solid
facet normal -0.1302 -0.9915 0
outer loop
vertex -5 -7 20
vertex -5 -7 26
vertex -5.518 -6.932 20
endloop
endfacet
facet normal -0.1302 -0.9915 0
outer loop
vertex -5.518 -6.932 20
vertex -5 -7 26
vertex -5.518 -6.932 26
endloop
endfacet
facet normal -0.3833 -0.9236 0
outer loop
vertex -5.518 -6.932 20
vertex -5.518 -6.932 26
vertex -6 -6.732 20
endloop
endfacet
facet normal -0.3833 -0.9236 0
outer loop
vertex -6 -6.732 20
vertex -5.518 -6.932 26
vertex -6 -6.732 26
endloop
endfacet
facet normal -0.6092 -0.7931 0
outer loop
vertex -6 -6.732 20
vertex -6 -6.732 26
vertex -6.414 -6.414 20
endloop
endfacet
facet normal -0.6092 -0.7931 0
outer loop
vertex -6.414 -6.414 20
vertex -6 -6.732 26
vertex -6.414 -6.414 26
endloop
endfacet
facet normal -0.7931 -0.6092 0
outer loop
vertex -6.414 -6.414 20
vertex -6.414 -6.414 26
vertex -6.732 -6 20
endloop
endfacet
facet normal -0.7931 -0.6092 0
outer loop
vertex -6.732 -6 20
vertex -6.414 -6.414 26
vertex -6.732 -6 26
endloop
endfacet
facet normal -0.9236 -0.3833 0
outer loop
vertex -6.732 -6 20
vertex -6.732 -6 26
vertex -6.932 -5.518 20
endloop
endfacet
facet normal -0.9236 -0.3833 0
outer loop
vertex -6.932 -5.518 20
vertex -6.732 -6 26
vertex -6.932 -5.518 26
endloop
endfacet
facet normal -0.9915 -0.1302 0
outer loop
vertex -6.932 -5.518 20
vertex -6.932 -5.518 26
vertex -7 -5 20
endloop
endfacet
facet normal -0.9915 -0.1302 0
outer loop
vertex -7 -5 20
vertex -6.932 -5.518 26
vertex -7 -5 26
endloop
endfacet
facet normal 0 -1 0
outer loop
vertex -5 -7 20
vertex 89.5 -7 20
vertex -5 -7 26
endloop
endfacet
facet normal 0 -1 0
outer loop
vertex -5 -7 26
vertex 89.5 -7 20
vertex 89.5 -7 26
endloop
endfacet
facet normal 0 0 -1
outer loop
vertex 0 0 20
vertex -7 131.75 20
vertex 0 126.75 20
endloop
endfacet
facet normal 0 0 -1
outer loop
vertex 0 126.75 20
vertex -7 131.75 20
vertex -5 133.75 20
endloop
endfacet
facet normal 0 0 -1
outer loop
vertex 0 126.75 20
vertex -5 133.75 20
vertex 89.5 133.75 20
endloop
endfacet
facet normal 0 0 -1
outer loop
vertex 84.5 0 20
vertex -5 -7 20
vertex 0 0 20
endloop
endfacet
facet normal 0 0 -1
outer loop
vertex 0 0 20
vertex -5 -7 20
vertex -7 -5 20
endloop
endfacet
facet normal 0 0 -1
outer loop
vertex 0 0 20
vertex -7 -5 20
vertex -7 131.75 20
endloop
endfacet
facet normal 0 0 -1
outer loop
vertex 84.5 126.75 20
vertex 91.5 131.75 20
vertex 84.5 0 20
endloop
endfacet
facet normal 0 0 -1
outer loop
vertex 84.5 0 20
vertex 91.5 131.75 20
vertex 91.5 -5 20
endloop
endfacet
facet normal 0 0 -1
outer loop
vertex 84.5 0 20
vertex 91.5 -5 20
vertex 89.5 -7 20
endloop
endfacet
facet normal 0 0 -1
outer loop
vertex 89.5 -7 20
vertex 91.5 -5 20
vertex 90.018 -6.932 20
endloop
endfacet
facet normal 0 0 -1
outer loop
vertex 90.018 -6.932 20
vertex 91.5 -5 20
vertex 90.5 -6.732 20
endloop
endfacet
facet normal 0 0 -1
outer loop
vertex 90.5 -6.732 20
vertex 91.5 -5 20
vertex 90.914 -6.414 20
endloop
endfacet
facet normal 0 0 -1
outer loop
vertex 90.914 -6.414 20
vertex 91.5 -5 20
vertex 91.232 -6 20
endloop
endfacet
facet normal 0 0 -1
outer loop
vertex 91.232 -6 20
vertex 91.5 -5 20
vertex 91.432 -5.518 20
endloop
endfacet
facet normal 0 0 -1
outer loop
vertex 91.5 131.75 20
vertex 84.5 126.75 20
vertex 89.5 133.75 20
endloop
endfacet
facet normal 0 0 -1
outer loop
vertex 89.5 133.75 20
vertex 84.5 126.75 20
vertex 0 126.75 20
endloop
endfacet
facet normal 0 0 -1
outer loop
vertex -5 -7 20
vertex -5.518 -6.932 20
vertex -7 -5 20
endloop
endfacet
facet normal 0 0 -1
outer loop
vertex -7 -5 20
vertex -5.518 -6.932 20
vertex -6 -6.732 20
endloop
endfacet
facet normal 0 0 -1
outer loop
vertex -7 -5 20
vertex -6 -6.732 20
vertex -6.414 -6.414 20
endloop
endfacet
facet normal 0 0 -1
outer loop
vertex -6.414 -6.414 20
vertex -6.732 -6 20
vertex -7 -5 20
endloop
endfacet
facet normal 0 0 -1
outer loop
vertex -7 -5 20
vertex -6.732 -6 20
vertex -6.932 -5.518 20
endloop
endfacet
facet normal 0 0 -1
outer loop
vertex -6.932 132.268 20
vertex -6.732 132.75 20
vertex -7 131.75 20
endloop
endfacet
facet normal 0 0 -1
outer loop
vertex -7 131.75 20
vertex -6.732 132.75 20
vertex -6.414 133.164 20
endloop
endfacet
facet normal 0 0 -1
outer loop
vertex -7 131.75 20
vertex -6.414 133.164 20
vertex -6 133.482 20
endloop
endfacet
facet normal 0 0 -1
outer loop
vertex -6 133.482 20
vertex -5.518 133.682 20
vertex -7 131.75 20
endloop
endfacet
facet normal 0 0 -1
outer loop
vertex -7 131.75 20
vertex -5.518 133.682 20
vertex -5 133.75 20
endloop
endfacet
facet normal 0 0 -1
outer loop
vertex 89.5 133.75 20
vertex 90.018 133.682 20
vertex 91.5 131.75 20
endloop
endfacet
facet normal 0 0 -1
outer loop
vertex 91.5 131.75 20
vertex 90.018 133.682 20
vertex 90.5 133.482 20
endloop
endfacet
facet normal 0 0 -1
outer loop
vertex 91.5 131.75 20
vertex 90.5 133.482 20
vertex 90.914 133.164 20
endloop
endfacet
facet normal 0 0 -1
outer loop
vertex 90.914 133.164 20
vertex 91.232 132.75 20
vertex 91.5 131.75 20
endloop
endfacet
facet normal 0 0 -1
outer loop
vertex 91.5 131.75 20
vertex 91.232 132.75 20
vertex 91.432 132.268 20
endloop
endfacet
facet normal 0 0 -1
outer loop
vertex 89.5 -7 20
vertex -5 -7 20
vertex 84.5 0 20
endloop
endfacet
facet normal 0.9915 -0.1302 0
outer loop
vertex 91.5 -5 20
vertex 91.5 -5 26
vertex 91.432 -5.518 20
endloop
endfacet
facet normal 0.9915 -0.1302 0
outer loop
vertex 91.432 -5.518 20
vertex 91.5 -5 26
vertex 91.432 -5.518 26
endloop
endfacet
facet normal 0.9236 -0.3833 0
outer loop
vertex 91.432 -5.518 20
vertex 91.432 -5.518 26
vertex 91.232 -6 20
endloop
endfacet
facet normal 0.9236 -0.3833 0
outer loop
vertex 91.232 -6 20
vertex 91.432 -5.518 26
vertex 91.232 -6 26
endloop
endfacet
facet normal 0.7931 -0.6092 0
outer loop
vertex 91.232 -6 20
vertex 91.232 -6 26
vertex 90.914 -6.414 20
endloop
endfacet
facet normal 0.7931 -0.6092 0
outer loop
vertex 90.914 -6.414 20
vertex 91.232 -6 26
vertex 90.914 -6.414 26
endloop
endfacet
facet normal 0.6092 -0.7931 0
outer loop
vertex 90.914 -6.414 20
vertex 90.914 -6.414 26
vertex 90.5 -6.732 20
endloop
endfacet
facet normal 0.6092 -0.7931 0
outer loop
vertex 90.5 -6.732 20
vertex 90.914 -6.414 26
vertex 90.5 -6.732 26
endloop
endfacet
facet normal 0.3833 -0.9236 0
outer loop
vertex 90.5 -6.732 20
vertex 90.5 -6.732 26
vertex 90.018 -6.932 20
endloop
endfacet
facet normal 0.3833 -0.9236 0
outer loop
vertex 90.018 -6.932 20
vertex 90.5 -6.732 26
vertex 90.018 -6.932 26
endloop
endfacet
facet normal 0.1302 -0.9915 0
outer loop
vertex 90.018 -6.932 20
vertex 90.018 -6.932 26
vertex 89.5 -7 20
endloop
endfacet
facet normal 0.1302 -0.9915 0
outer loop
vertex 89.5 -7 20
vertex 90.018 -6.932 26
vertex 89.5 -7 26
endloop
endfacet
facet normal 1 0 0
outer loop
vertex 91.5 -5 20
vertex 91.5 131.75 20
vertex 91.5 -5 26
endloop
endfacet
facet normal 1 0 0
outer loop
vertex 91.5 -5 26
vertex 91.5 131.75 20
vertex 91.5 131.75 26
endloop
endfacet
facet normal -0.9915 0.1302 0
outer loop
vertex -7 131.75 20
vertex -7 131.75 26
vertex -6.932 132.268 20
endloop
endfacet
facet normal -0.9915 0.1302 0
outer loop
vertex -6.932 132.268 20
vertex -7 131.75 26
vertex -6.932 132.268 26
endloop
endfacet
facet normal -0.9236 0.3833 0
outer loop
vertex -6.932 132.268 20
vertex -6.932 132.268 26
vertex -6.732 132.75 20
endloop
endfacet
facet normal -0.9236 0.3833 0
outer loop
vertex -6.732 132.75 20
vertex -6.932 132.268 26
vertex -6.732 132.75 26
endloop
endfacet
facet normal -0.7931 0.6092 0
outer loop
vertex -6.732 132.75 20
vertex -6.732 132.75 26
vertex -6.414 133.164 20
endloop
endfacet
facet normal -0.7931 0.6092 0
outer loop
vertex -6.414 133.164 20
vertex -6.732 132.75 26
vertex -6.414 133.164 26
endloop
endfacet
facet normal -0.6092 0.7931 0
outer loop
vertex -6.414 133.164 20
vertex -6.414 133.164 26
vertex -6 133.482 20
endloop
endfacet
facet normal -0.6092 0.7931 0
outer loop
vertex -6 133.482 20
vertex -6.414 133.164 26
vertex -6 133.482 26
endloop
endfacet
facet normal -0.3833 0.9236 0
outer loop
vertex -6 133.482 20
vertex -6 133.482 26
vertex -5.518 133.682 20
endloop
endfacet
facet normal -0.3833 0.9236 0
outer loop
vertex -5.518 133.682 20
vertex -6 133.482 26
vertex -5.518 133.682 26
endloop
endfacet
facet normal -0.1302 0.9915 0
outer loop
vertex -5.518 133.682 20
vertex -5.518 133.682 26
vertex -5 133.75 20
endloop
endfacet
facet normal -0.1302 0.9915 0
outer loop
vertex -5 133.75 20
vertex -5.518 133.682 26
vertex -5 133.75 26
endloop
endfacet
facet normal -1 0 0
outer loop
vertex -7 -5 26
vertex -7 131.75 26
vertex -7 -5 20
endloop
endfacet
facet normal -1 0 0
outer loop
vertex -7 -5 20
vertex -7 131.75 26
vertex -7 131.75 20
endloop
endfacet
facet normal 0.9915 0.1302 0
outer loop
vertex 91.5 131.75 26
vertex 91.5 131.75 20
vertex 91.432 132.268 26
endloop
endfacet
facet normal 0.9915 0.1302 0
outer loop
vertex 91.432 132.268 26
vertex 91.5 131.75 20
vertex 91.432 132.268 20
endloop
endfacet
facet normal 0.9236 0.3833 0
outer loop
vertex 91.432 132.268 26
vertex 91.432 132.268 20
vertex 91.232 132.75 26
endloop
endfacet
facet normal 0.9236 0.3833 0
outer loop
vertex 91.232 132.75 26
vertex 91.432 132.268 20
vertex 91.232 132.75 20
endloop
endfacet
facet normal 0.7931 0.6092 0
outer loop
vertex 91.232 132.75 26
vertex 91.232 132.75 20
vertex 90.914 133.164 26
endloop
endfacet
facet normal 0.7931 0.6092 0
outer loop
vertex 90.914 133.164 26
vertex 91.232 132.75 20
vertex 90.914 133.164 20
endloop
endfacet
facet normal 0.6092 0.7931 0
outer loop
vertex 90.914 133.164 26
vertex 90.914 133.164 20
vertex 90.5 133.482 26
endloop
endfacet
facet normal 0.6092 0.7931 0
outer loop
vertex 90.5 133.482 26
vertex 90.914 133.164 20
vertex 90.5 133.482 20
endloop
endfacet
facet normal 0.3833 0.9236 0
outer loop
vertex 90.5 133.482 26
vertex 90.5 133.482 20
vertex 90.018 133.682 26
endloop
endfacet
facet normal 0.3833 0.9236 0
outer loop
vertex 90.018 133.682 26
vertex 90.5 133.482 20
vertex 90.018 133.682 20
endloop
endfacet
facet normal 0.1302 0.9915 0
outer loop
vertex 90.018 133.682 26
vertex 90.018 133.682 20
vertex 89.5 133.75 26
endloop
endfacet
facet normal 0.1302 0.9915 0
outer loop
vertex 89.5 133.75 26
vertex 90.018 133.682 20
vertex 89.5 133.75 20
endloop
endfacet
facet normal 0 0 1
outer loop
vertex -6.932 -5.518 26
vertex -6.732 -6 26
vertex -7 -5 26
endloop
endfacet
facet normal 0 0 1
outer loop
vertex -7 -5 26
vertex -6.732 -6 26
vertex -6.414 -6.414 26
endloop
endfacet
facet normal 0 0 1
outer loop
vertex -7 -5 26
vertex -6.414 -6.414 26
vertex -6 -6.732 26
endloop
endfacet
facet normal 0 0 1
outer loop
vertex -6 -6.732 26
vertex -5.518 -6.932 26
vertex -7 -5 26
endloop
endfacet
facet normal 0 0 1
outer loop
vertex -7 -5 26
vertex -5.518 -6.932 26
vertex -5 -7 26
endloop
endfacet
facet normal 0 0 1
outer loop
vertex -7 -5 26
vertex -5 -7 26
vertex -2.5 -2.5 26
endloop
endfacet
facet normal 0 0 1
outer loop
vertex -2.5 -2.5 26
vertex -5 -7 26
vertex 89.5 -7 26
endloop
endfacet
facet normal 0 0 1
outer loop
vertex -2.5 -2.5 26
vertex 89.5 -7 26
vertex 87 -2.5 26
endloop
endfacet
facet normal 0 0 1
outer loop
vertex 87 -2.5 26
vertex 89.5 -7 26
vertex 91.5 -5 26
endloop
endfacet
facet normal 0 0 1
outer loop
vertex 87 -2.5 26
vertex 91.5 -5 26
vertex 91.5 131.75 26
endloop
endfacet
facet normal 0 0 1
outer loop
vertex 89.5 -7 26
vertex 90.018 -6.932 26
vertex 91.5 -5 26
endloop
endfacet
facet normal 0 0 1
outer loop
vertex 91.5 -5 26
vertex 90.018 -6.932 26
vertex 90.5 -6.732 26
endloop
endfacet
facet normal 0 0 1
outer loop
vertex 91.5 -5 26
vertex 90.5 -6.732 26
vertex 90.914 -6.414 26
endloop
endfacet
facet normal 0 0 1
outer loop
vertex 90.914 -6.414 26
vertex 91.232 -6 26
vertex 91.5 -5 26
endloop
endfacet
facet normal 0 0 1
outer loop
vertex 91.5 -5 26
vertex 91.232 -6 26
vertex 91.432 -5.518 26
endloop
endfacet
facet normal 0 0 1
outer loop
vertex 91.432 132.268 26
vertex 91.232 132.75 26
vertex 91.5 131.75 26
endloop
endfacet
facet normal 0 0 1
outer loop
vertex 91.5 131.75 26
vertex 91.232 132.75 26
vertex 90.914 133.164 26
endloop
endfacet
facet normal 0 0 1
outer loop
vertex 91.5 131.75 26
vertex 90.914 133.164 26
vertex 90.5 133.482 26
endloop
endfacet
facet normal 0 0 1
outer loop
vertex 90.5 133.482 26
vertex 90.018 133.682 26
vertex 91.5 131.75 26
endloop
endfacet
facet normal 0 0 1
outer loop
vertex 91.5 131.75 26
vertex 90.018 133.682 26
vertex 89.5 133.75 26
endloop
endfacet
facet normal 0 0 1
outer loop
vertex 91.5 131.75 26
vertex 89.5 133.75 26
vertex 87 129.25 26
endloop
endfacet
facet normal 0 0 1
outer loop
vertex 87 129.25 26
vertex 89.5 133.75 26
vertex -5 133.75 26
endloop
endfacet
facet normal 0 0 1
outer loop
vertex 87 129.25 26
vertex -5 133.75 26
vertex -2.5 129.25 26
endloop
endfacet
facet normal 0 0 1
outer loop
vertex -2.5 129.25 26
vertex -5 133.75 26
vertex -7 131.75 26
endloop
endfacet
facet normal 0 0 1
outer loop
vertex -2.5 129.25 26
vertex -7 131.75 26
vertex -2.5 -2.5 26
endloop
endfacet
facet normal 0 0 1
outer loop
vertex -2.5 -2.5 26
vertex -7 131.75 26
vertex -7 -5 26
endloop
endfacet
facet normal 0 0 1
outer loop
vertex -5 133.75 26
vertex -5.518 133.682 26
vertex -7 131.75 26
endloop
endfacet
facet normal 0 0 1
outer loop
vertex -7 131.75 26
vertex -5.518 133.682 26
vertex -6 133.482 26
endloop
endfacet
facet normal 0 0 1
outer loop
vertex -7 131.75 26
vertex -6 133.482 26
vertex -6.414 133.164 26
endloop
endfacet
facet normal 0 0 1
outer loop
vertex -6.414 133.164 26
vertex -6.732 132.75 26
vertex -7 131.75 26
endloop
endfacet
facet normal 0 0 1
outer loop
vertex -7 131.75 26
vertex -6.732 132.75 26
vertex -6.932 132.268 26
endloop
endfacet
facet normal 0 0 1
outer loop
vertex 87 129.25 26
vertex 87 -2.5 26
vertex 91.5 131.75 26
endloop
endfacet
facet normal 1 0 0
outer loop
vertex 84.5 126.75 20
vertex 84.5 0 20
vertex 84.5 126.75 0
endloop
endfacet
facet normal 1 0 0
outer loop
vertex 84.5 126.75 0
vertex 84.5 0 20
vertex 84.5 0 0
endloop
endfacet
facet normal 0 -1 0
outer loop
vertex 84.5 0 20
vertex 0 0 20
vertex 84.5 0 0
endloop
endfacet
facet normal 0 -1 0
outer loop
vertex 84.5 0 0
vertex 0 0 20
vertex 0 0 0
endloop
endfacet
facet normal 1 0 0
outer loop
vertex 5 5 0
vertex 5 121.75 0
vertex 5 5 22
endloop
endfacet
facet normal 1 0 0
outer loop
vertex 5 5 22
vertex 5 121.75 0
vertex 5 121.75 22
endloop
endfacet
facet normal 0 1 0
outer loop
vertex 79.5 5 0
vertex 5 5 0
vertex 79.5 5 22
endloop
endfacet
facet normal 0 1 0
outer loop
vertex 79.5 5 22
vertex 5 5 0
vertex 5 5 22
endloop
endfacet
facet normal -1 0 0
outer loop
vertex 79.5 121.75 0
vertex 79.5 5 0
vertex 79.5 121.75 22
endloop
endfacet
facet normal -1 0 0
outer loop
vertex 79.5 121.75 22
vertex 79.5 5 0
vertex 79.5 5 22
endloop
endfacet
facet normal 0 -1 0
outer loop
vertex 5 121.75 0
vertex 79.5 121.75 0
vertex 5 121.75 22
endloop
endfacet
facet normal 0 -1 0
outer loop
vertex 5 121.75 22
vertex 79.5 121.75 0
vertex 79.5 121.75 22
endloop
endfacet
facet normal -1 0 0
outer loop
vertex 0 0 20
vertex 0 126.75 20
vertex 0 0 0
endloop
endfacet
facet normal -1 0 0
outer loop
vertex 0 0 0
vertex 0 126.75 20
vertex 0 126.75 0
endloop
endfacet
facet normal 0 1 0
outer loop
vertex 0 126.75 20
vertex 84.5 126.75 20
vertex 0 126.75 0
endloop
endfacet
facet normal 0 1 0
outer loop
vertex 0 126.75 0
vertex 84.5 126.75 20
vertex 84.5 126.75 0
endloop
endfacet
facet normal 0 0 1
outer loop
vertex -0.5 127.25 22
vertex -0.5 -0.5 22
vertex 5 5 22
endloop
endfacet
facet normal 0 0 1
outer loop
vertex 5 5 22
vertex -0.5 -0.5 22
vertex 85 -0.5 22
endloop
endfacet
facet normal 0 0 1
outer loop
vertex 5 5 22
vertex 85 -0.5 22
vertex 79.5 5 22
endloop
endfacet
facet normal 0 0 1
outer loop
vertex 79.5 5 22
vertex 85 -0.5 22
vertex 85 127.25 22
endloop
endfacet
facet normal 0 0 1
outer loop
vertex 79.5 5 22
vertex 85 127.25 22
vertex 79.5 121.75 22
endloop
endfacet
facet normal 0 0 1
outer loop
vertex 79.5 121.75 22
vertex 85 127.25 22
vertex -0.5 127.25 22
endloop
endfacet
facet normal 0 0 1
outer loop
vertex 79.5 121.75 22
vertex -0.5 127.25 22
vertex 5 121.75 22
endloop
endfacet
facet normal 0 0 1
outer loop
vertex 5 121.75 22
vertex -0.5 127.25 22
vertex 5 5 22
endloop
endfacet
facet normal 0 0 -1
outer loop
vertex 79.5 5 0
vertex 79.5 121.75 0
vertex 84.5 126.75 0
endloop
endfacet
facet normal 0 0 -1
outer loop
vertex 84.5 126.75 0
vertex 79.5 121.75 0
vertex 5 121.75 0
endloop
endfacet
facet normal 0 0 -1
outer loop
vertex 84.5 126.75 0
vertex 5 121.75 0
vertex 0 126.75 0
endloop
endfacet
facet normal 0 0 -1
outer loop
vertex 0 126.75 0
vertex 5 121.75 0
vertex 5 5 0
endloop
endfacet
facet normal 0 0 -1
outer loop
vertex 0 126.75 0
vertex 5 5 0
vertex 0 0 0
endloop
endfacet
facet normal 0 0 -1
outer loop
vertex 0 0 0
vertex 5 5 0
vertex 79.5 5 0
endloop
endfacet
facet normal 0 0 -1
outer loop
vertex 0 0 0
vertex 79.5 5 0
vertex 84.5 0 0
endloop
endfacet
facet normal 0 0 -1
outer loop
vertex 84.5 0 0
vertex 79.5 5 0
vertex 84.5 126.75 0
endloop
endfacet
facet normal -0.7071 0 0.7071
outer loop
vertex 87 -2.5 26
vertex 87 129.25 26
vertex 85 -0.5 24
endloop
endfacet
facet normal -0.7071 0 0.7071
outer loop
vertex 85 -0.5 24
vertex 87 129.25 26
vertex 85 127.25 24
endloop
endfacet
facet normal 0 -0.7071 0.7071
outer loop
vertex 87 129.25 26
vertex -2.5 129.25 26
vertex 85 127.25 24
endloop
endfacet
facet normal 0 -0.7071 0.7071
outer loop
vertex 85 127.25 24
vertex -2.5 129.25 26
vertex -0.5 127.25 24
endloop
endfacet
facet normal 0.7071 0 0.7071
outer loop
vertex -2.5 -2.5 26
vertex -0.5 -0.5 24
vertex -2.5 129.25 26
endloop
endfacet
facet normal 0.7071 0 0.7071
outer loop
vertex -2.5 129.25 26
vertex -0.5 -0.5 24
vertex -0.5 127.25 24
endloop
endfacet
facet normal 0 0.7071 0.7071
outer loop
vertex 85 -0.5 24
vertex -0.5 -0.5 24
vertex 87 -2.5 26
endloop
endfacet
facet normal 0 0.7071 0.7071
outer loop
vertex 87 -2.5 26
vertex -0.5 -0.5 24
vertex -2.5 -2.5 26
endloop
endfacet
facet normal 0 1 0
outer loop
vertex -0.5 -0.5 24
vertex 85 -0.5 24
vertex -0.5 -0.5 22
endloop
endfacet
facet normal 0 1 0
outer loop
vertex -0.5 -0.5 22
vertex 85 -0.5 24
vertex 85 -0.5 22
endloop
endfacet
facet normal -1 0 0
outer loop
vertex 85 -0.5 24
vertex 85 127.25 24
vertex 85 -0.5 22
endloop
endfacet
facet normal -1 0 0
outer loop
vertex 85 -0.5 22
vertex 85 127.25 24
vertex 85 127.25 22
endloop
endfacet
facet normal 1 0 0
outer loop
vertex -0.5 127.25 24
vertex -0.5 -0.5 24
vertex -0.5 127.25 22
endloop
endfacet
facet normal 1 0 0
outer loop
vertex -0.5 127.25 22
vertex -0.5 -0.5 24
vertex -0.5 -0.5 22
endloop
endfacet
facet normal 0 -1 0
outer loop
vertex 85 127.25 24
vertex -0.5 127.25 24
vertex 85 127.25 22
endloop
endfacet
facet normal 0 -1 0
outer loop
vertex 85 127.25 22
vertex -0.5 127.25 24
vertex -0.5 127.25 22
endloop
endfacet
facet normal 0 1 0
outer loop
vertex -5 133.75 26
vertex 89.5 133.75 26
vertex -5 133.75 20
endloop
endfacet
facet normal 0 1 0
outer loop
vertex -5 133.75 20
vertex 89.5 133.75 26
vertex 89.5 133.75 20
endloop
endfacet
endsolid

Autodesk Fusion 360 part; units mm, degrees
sketch "Sketch1" plane through (0, 0, 0) normal (0, 0, 1) x (1, 0, 0)
  line L0 (0, 0) -> (84.5, 0)
  line L1 (84.5, 0) -> (84.5, 126.75)
  line L2 (84.5, 126.75) -> (0, 126.75)
  line L3 (0, 126.75) -> (0, 0)
  line L4 (0, 126.75) -> (5, 126.75)
  line L5 (5, 126.75) -> (5, 121.75)
  line L6 (5, 121.75) -> (0, 121.75)
  line L7 (0, 121.75) -> (0, 126.75)
  line L8 (84.5, 0) -> (79.5, 0)
  line L9 (79.5, 0) -> (79.5, 5)
  line L10 (79.5, 5) -> (84.5, 5)
  line L11 (84.5, 5) -> (84.5, 0)
  line L12 (5, 121.75) -> (79.5, 121.75)
  line L13 (79.5, 121.75) -> (79.5, 5)
  line L14 (79.5, 5) -> (5, 5)
  line L15 (5, 5) -> (5, 121.75)
  dimension "d1" = 84.5
  dimension "d2" = 126.75
  dimension "d3" = 5
  dimension "d4" = 5
  dimension "d5" = 5
  dimension "d6" = 5
extrude "Extrude1" add sketch "Sketch1" along normal blind 22 contours L0 L3 L6 L9 L14 L15 | L0 L1 L8 L9 L10 L11 | L2 L3 L4 L5 L6 L7 | L1 L2 L5 L10 L12 L13 makes body 1
sketch "Sketch2" plane through (0, 0, 22) normal (0, 0, 1) x (-1, 0, 0)
  line L0 (-79.5, -5) -> (-5, -5)
  line L1 (-5, -5) -> (-5, -121.75)
  line L2 (-5, -121.75) -> (-79.5, -121.75)
  line L3 (-79.5, -121.75) -> (-79.5, -5)
  line L4 (-84.5, -126.75) -> (0, -126.75)
  line L5 (0, -126.75) -> (0, 0)
  line L6 (0, 0) -> (-84.5, 0)
  line L7 (-84.5, 0) -> (-84.5, -126.75)
  line L8 (0, -126.75) -> (7, -126.75)
  line L9 (7, -126.75) -> (7, -133.75)
  line L10 (7, -133.75) -> (0, -133.75)
  line L11 (0, -133.75) -> (0, -126.75)
  line L12 (-84.5, 0) -> (-91.5, 0)
  line L13 (-91.5, 0) -> (-91.5, 7)
  line L14 (-91.5, 7) -> (-84.5, 7)
  line L15 (-84.5, 7) -> (-84.5, 0)
  line L16 (7, -133.75) -> (-91.5, -133.75)
  line L17 (-91.5, -133.75) -> (-91.5, 7)
  line L18 (-91.5, 7) -> (7, 7)
  line L19 (7, 7) -> (7, -133.75)
  line L20 (0, -126.75) -> (0.5, -126.75)
  line L21 (0.5, -126.75) -> (0.5, -127.25)
  line L22 (0.5, -127.25) -> (0, -127.25)
  line L23 (0, -127.25) -> (0, -126.75)
  line L24 (-84.5, 0) -> (-85, 0)
  line L25 (-85, 0) -> (-85, 0.5)
  line L26 (-85, 0.5) -> (-84.5, 0.5)
  line L27 (-84.5, 0.5) -> (-84.5, 0)
  line L28 (0.5, -127.25) -> (-85, -127.25)
  line L29 (-85, -127.25) -> (-85, 0.5)
  line L30 (-85, 0.5) -> (0.5, 0.5)
  line L31 (0.5, 0.5) -> (0.5, -127.25)
  dimension "d9" = 7
  dimension "d10" = 7
  dimension "d11" = 7
  dimension "d12" = 7
  dimension "d24" = 0.5
  dimension "d25" = 0.5
  dimension "d26" = 0.5
  dimension "d27" = 0.5
extrude "Extrude2" add sketch "Sketch2" along normal blind 4 separate body contours L8 L15 L18 L19 L30 L31 | L8 L9 L10 L11 L16 L19 L21 L22 L28 L31 | L11 L12 L16 L17 L28 L29 | L12 L13 L14 L15 L17 L18 L25 L26 L29 L30 makes body 2
chamfer "Chamfer1" distance 2 angle 45 4 edges at (85, 63.375, 26) (42.25, -0.5, 26) (-0.5, 63.375, 26) (42.25, 127.25, 26) on bodies 2
extrude "Extrude3" add sketch "Sketch2" against normal blind 2 contours L4 L7 L11 L12 L23 L24 L28 L29 | L5 L6 L8 L15 L20 L27 L30 L31 | L8 L11 L20 L21 L22 L23 L28 L31 | L12 L15 L24 L25 L26 L27 L29 L30 | L8 L15 L18 L19 L30 L31 | L8 L9 L10 L11 L16 L19 L21 L22 L28 L31 | L11 L12 L16 L17 L28 L29 | L12 L13 L14 L15 L17 L18 L25 L26 L29 L30 bodies 1 2
fillet "Fillet1" radius 2 4 edges at (-7, -7, 24) (91.5, -7, 24) (-7, 133.75, 24) (91.5, 133.75, 24) on bodies 1 2
